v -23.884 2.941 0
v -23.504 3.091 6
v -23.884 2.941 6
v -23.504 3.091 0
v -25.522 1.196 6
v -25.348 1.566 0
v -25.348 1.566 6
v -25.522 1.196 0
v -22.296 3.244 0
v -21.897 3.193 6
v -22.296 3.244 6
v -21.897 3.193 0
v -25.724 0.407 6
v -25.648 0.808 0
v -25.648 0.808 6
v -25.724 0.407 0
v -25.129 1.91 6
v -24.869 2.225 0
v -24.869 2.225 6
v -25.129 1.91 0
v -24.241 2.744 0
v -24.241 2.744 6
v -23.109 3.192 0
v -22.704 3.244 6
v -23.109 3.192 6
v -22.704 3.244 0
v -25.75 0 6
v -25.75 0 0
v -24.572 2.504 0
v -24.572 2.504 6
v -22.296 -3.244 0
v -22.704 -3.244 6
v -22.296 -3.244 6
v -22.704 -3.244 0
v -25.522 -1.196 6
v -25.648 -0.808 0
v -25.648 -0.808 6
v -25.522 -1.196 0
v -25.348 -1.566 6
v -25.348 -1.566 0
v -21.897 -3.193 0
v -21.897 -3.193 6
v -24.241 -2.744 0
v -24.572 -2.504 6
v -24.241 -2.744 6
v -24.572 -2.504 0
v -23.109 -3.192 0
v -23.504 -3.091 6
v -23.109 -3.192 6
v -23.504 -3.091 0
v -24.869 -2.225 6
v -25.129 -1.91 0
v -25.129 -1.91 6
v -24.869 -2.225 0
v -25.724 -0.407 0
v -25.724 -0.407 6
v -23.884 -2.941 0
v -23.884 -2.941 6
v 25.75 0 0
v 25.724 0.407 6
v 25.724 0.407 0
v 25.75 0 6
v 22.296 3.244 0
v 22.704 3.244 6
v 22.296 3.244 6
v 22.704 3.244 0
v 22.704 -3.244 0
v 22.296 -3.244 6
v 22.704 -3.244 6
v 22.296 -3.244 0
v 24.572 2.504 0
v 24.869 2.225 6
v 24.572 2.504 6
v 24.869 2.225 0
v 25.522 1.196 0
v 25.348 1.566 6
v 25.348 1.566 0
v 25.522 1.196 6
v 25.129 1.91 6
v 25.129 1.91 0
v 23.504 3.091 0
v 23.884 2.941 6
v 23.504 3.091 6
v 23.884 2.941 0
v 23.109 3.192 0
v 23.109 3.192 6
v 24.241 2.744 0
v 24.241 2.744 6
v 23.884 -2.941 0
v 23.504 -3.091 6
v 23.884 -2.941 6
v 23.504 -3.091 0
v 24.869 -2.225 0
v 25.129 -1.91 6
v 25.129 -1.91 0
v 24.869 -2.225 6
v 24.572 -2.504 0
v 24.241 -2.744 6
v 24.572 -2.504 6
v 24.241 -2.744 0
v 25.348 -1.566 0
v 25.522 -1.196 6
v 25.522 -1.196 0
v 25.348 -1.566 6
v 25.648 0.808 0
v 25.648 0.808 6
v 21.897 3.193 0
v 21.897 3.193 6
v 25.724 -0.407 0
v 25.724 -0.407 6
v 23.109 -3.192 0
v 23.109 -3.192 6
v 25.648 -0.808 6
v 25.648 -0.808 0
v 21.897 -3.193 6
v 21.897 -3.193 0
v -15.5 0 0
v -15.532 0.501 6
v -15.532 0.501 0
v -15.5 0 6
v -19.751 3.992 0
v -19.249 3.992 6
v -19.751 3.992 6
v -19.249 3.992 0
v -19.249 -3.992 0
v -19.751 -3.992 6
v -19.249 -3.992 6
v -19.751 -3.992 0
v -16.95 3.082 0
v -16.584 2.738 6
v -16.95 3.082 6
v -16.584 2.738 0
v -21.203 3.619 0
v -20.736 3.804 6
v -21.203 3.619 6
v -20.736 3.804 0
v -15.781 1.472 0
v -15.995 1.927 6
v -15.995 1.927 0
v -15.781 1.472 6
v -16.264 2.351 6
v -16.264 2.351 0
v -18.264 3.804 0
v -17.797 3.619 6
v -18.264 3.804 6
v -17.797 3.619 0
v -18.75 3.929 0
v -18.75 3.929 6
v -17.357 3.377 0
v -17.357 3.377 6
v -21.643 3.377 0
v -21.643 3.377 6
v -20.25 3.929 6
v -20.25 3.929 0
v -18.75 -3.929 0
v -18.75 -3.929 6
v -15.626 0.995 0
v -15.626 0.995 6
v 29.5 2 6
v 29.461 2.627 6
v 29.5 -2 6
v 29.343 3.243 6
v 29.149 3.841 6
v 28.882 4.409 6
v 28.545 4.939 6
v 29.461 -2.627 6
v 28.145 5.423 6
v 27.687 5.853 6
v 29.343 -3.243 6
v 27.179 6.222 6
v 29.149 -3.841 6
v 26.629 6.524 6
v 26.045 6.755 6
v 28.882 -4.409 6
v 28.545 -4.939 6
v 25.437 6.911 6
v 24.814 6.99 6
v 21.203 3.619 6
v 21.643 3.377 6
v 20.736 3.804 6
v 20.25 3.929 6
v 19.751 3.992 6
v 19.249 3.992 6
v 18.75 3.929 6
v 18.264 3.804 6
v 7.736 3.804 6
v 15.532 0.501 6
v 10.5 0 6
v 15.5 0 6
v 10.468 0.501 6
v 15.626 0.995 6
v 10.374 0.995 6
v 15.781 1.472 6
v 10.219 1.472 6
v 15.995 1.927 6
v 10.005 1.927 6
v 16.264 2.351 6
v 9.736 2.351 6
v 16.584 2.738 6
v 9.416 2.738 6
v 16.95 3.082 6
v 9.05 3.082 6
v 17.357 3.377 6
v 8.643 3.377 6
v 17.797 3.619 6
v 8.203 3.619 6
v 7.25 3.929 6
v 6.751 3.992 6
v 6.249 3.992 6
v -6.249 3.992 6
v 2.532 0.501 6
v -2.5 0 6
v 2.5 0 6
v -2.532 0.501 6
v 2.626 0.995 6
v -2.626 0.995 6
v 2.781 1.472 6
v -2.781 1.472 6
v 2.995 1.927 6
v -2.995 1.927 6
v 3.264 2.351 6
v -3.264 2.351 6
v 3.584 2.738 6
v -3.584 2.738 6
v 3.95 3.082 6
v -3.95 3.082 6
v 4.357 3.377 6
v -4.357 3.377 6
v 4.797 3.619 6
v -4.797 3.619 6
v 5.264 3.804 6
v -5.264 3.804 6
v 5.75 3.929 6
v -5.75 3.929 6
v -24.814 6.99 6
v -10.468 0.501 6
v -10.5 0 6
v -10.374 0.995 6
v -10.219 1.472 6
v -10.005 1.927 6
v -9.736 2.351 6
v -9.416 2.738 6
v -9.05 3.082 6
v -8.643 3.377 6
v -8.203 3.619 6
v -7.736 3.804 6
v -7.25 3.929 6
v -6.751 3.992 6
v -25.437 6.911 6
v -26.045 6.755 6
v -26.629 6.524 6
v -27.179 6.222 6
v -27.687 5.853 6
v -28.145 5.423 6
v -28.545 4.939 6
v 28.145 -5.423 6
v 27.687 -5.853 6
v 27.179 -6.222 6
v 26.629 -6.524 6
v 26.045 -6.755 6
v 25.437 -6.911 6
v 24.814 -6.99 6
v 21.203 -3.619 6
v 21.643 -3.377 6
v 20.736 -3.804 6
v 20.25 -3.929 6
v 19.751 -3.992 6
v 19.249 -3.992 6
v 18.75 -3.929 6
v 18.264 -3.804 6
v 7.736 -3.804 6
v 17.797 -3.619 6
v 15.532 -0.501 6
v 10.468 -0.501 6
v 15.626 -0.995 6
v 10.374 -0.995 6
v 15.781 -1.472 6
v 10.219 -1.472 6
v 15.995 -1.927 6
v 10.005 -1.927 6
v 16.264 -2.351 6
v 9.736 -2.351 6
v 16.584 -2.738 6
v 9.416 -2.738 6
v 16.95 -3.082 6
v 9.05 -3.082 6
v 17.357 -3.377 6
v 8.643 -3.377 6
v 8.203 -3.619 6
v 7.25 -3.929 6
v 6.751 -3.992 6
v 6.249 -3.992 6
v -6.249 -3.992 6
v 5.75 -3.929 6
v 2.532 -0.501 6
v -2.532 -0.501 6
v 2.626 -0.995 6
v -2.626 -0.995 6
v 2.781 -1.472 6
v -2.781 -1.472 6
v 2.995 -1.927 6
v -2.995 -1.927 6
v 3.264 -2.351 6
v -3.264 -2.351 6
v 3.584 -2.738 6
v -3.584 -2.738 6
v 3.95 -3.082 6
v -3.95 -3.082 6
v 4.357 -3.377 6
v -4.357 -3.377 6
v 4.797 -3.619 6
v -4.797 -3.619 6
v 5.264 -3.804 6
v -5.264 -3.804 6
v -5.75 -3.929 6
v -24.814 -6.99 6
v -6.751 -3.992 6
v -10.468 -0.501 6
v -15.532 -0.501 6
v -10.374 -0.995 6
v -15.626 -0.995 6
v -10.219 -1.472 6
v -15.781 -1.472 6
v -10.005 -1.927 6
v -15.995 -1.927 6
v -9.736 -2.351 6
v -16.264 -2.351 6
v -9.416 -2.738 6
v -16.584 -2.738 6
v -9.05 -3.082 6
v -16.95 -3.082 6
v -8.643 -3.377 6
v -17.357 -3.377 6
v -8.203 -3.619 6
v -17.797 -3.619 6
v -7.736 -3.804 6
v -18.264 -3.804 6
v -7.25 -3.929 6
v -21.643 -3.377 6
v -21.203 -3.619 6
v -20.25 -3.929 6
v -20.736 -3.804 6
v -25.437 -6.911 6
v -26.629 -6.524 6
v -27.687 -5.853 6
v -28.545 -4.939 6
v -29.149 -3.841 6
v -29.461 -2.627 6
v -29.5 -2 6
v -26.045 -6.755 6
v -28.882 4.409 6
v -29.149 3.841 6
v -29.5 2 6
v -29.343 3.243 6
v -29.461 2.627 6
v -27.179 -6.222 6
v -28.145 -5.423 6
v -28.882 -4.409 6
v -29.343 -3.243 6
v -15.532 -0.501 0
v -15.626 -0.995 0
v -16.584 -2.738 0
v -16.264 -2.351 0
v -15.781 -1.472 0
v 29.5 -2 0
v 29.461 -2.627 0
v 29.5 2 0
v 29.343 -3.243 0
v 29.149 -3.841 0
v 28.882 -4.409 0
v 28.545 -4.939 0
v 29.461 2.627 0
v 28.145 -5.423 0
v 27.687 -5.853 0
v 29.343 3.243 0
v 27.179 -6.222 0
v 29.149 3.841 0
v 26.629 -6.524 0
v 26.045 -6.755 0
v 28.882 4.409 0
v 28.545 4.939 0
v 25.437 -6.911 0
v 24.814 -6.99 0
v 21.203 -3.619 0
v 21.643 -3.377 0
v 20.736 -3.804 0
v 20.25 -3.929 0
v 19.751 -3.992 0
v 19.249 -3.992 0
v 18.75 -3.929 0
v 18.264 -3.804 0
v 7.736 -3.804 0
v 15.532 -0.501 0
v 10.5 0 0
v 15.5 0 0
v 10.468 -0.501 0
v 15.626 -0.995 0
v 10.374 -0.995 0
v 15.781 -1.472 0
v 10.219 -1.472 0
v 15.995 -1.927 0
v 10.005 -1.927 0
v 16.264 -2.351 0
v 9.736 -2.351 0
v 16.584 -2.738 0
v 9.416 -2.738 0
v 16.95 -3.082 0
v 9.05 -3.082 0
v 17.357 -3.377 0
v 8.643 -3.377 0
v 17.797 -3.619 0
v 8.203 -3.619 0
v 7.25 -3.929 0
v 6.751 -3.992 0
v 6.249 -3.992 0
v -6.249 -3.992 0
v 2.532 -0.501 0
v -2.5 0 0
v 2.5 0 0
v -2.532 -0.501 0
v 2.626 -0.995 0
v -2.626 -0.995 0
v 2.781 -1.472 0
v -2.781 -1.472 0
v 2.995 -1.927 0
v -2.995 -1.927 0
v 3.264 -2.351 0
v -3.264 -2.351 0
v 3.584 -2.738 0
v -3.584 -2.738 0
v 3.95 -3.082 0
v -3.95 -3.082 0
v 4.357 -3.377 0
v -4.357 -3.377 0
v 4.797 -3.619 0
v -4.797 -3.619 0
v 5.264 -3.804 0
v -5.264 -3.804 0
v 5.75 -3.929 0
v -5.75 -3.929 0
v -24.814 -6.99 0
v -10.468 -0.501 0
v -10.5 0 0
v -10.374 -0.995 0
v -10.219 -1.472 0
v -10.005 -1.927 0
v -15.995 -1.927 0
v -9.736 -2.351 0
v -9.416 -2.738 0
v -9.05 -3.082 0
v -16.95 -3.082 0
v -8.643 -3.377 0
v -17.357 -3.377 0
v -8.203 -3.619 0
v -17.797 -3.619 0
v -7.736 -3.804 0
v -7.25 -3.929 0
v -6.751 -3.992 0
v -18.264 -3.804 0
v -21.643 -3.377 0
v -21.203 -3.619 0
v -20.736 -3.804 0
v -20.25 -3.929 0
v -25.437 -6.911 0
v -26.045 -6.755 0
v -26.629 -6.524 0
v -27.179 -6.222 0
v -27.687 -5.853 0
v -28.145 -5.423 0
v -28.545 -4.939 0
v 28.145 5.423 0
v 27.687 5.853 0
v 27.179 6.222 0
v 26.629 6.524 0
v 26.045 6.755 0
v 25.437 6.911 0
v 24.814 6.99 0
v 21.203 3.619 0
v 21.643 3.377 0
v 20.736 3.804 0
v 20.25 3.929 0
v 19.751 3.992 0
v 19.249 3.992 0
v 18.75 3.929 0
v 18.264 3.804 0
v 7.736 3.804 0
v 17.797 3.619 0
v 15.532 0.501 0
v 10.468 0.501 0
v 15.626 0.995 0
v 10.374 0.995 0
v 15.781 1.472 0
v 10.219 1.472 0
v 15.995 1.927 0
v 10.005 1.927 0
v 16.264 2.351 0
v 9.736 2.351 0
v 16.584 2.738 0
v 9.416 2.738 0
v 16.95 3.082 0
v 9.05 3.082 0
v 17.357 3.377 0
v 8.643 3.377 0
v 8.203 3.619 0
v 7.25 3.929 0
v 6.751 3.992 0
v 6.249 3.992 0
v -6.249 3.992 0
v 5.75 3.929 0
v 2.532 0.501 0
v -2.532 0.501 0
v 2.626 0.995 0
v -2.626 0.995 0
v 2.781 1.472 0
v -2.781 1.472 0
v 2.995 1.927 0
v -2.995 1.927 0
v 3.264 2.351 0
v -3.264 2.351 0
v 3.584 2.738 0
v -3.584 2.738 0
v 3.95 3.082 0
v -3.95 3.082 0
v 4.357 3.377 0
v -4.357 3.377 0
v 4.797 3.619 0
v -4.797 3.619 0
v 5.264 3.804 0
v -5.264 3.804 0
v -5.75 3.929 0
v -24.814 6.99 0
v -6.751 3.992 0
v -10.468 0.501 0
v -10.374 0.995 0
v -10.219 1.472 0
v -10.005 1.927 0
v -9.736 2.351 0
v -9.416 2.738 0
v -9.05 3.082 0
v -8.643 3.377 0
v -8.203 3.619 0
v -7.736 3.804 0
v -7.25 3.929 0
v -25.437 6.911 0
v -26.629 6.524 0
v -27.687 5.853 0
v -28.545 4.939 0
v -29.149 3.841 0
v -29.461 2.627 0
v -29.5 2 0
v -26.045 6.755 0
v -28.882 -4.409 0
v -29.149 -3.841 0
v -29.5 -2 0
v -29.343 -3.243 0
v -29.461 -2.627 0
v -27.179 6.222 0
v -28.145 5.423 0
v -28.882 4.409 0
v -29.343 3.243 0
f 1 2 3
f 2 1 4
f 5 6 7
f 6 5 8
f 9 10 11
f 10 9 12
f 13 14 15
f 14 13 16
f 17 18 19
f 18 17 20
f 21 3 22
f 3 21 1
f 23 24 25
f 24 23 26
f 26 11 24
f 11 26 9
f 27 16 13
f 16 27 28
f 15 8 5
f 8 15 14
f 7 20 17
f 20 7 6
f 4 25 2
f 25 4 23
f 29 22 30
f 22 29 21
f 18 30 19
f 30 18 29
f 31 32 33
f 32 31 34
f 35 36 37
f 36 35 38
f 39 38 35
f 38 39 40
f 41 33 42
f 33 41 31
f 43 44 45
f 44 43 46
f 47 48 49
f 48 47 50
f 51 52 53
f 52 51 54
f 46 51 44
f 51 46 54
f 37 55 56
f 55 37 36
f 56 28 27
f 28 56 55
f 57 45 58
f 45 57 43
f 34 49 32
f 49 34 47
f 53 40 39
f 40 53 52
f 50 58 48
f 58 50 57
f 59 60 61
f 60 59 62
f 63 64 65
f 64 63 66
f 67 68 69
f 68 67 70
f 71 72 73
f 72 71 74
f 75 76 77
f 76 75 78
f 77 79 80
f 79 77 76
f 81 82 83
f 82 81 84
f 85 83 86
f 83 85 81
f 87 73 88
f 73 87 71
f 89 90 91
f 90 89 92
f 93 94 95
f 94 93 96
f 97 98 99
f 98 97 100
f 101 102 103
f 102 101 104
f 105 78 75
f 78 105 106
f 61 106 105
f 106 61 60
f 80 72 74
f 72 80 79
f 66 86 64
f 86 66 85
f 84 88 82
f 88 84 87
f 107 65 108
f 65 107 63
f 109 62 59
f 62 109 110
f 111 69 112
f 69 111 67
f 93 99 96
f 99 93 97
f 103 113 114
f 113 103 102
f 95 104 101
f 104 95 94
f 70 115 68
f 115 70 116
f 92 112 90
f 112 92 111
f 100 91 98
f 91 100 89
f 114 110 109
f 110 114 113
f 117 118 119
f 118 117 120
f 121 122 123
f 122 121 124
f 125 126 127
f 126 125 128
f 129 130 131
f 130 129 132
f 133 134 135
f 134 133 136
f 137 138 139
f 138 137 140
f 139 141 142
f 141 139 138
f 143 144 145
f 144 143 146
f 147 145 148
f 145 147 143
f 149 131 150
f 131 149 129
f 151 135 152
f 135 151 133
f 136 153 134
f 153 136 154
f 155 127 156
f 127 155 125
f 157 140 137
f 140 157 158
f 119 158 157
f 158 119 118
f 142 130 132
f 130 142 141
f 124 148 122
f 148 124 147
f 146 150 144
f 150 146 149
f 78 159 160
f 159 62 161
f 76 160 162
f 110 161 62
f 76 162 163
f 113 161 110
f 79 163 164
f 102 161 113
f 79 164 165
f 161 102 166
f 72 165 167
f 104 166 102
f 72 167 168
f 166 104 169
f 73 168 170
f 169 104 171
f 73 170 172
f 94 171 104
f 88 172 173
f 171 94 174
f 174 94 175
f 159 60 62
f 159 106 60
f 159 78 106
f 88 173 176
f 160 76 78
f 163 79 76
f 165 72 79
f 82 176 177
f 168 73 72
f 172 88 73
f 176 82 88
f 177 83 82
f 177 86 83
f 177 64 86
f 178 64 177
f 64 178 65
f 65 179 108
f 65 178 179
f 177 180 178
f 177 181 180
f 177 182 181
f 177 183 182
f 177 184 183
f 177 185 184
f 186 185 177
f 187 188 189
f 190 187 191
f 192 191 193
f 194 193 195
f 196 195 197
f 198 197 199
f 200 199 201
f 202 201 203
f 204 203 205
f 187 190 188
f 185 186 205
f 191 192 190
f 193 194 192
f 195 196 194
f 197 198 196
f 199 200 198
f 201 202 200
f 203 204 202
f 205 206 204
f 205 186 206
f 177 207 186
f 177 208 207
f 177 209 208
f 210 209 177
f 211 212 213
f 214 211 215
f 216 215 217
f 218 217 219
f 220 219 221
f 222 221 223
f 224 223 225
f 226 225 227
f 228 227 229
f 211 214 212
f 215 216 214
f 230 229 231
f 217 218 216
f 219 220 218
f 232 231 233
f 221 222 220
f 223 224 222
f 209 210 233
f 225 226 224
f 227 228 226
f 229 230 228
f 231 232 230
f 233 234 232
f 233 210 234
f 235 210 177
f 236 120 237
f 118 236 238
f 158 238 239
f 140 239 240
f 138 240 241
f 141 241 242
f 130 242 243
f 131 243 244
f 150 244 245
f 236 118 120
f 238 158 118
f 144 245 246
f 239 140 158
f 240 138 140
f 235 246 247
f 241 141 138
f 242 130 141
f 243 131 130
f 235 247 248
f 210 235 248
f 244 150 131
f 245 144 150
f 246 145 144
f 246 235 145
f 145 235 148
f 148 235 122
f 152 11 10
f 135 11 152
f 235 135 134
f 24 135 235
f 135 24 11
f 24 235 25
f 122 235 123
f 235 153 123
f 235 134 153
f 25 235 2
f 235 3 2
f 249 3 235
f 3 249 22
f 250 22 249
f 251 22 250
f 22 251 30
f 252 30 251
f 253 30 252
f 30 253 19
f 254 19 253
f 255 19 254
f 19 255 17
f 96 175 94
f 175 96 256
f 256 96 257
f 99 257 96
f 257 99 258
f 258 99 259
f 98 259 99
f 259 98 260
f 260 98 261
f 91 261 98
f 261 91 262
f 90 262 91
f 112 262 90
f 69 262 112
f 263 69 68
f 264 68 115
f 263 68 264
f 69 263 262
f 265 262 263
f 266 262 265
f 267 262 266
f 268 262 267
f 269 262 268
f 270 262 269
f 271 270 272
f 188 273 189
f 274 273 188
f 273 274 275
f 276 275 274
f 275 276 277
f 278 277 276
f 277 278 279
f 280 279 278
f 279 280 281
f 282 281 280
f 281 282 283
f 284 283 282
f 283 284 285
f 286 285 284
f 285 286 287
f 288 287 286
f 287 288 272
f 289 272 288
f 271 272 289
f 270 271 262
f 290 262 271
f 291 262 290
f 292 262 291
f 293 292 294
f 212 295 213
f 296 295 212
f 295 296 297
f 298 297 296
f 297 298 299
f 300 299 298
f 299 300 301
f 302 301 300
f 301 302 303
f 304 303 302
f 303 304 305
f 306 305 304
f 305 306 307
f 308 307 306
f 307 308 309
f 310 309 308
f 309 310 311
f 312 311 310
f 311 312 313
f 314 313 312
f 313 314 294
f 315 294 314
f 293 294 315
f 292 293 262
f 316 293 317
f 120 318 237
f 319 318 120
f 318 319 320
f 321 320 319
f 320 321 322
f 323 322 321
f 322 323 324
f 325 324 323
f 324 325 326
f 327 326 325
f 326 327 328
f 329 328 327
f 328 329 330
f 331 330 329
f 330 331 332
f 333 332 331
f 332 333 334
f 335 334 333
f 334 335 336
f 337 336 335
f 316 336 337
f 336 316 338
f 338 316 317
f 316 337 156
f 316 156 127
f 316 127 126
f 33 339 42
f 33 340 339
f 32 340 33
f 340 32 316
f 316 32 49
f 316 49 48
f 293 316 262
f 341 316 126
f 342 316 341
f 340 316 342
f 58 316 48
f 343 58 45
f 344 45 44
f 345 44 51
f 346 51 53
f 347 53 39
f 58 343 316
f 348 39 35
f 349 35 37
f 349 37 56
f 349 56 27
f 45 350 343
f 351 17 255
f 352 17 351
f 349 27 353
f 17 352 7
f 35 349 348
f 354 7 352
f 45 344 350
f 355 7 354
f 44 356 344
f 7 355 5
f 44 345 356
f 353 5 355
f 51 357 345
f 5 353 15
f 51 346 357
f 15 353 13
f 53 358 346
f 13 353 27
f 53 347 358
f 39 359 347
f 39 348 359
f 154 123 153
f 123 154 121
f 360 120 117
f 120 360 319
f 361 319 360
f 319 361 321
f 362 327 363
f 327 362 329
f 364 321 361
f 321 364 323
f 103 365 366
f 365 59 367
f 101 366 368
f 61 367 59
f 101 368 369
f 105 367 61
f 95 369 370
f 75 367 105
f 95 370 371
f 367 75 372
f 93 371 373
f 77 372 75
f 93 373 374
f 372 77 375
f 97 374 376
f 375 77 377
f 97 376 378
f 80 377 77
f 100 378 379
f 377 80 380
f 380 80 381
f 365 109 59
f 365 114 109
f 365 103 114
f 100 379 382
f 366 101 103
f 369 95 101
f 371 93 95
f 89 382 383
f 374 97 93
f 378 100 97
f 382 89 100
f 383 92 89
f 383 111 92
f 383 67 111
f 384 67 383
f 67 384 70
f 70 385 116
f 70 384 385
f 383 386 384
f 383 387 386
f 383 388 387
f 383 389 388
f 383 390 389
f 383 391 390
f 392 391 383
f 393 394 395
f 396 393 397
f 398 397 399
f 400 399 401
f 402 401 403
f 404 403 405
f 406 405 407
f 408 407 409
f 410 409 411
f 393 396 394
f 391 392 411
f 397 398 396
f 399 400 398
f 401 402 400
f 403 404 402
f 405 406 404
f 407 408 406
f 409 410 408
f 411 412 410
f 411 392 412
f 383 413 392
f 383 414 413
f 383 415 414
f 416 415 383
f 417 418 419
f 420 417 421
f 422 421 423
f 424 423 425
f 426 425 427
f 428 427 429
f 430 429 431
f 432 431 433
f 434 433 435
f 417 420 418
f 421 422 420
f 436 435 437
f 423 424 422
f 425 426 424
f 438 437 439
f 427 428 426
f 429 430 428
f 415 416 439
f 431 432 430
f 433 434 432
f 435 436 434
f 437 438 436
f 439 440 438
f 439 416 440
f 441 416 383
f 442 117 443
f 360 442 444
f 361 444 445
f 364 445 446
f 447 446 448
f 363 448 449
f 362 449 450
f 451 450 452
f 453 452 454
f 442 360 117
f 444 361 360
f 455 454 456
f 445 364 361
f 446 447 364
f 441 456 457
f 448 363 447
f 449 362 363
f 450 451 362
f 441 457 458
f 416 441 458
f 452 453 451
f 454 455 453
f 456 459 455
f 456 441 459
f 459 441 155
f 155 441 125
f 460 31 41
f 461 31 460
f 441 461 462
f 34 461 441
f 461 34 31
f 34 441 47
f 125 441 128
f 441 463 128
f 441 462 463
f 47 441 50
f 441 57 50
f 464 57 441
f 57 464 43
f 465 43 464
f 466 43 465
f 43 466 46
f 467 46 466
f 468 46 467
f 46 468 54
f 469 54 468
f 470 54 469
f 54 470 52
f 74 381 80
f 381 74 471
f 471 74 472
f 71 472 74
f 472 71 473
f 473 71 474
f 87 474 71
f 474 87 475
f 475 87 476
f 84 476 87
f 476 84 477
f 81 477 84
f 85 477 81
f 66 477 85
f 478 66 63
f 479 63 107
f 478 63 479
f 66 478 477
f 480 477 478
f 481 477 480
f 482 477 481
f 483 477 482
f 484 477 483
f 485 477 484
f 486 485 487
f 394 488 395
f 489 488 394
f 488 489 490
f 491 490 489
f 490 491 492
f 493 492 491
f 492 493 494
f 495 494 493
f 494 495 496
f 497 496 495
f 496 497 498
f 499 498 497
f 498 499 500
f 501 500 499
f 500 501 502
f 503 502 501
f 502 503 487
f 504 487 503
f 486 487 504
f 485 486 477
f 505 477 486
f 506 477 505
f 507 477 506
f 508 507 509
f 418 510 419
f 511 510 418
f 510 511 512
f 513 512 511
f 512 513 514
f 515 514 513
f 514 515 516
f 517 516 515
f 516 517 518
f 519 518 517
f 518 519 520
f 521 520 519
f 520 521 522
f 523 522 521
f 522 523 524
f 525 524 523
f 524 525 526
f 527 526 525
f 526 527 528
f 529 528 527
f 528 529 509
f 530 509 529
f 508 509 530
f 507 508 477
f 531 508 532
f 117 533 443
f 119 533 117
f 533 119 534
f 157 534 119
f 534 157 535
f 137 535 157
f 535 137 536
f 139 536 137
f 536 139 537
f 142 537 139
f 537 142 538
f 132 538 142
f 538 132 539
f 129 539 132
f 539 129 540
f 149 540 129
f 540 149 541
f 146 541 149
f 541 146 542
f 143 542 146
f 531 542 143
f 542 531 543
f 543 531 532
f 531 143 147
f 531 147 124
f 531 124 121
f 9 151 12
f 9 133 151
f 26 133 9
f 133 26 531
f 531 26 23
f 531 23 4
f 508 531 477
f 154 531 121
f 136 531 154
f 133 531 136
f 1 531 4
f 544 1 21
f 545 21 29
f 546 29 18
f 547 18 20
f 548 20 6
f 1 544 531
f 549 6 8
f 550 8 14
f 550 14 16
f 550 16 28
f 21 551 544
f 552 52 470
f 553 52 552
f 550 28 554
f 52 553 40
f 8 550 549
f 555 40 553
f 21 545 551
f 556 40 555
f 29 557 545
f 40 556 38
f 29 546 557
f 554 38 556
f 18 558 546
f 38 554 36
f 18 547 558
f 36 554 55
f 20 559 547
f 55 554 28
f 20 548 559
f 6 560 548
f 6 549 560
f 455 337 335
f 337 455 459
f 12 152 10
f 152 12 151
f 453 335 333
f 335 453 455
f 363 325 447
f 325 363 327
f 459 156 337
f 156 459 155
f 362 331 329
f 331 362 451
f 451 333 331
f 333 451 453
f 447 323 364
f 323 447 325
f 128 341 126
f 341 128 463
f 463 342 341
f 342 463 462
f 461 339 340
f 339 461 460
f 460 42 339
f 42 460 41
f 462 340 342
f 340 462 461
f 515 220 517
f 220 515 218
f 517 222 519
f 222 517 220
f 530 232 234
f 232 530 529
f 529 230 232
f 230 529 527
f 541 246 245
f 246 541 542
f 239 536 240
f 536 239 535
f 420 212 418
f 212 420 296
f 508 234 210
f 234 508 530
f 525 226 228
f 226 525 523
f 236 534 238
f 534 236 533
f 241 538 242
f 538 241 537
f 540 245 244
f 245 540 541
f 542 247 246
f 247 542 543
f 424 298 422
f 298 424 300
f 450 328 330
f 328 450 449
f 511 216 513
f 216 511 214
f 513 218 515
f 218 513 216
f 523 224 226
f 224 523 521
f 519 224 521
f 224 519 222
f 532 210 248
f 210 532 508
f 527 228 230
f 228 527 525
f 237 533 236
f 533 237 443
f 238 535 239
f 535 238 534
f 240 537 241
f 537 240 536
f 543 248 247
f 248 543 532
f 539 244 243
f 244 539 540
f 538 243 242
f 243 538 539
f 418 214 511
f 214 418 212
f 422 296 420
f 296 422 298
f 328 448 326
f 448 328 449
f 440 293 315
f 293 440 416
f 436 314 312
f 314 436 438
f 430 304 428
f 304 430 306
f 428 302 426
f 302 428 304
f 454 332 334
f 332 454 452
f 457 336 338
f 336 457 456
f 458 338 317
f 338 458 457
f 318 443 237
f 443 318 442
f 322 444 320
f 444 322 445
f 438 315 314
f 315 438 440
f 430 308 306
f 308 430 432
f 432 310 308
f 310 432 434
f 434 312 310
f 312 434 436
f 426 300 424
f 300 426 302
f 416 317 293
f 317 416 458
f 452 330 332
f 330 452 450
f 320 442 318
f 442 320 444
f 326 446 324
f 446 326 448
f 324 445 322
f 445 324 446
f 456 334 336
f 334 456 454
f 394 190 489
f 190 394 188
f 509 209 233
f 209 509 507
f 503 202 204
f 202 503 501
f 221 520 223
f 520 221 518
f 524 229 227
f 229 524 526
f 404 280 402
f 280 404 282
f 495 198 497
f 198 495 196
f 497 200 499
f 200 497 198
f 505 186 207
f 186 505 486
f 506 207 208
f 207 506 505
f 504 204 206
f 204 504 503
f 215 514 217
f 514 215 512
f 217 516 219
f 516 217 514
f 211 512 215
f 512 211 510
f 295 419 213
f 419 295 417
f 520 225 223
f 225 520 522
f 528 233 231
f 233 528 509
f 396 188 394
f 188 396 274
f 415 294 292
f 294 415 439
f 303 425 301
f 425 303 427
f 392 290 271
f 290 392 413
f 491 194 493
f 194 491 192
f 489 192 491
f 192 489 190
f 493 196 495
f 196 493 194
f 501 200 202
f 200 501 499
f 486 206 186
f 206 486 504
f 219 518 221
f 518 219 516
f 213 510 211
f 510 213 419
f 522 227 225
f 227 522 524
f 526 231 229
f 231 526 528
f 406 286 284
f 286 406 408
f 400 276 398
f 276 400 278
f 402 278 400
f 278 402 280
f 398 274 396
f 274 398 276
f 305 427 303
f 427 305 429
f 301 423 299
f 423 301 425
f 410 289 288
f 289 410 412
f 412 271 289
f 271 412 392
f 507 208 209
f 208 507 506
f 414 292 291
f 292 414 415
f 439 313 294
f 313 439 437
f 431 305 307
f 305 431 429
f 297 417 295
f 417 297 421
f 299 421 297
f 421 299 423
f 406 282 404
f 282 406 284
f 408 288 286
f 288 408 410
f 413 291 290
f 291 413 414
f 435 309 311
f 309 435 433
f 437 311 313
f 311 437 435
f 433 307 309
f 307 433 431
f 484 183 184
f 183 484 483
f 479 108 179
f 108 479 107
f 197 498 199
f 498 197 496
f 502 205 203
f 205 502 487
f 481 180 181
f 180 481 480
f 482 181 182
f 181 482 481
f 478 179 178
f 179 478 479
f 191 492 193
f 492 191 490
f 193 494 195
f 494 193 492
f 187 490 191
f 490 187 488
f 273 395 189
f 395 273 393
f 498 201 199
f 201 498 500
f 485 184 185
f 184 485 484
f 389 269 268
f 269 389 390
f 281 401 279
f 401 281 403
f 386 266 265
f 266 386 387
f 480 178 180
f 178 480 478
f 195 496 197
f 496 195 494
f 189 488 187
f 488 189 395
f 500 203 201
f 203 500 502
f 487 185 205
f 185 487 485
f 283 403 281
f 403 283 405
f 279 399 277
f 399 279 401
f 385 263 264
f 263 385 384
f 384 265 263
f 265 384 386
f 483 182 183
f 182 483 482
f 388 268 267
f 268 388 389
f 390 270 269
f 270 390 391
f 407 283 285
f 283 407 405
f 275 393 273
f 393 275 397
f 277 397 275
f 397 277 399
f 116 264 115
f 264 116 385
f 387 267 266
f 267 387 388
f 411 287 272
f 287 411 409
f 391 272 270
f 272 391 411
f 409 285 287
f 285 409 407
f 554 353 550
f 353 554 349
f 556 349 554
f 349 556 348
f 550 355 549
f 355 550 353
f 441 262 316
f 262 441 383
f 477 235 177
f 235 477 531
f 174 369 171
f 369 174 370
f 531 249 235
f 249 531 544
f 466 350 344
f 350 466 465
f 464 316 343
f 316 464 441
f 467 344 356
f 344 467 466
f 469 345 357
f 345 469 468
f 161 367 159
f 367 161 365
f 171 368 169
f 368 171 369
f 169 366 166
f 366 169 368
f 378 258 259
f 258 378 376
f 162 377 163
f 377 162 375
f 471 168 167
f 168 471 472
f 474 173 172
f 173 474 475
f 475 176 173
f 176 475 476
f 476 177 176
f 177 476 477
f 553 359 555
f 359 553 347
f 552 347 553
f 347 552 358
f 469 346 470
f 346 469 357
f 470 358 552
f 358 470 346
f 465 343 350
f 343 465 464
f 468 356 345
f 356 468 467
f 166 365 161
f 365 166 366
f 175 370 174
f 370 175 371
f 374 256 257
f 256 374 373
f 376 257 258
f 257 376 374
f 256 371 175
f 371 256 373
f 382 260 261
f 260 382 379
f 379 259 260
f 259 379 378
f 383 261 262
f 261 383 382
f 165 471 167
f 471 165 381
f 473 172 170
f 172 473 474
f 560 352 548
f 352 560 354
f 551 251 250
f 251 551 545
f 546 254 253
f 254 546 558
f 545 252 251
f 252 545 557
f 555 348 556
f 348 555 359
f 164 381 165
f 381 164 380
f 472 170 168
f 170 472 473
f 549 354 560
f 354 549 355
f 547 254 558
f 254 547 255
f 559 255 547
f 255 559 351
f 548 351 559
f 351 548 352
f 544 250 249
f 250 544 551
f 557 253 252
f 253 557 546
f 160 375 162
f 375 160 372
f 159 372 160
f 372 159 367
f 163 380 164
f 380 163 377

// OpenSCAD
$fn = 50;


difference() {
	union() {
		hull() {
			translate(v = [-24.5000000000, 2.0000000000, 0]) {
				cylinder(h = 6, r = 5);
			}
			translate(v = [24.5000000000, 2.0000000000, 0]) {
				cylinder(h = 6, r = 5);
			}
			translate(v = [-24.5000000000, -2.0000000000, 0]) {
				cylinder(h = 6, r = 5);
			}
			translate(v = [24.5000000000, -2.0000000000, 0]) {
				cylinder(h = 6, r = 5);
			}
		}
	}
	union() {
		#translate(v = [-22.5000000000, 0.0000000000, -100.0000000000]) {
			cylinder(h = 200, r = 3.2500000000);
		}
		#translate(v = [-22.5000000000, 0.0000000000, -100.0000000000]) {
			cylinder(h = 200, r = 3.2500000000);
		}
		#translate(v = [22.5000000000, 0.0000000000, -100.0000000000]) {
			cylinder(h = 200, r = 3.2500000000);
		}
		#translate(v = [22.5000000000, 0.0000000000, -100.0000000000]) {
			cylinder(h = 200, r = 3.2500000000);
		}
		#translate(v = [-19.5000000000, 0, 0]) {
			cylinder(h = 6, r = 4.0000000000);
		}
		#translate(v = [-6.5000000000, 0, 0]) {
			cylinder(h = 6, r = 4.0000000000);
		}
		#translate(v = [6.5000000000, 0, 0]) {
			cylinder(h = 6, r = 4.0000000000);
		}
		#translate(v = [19.5000000000, 0, 0]) {
			cylinder(h = 6, r = 4.0000000000);
		}
	}
}
